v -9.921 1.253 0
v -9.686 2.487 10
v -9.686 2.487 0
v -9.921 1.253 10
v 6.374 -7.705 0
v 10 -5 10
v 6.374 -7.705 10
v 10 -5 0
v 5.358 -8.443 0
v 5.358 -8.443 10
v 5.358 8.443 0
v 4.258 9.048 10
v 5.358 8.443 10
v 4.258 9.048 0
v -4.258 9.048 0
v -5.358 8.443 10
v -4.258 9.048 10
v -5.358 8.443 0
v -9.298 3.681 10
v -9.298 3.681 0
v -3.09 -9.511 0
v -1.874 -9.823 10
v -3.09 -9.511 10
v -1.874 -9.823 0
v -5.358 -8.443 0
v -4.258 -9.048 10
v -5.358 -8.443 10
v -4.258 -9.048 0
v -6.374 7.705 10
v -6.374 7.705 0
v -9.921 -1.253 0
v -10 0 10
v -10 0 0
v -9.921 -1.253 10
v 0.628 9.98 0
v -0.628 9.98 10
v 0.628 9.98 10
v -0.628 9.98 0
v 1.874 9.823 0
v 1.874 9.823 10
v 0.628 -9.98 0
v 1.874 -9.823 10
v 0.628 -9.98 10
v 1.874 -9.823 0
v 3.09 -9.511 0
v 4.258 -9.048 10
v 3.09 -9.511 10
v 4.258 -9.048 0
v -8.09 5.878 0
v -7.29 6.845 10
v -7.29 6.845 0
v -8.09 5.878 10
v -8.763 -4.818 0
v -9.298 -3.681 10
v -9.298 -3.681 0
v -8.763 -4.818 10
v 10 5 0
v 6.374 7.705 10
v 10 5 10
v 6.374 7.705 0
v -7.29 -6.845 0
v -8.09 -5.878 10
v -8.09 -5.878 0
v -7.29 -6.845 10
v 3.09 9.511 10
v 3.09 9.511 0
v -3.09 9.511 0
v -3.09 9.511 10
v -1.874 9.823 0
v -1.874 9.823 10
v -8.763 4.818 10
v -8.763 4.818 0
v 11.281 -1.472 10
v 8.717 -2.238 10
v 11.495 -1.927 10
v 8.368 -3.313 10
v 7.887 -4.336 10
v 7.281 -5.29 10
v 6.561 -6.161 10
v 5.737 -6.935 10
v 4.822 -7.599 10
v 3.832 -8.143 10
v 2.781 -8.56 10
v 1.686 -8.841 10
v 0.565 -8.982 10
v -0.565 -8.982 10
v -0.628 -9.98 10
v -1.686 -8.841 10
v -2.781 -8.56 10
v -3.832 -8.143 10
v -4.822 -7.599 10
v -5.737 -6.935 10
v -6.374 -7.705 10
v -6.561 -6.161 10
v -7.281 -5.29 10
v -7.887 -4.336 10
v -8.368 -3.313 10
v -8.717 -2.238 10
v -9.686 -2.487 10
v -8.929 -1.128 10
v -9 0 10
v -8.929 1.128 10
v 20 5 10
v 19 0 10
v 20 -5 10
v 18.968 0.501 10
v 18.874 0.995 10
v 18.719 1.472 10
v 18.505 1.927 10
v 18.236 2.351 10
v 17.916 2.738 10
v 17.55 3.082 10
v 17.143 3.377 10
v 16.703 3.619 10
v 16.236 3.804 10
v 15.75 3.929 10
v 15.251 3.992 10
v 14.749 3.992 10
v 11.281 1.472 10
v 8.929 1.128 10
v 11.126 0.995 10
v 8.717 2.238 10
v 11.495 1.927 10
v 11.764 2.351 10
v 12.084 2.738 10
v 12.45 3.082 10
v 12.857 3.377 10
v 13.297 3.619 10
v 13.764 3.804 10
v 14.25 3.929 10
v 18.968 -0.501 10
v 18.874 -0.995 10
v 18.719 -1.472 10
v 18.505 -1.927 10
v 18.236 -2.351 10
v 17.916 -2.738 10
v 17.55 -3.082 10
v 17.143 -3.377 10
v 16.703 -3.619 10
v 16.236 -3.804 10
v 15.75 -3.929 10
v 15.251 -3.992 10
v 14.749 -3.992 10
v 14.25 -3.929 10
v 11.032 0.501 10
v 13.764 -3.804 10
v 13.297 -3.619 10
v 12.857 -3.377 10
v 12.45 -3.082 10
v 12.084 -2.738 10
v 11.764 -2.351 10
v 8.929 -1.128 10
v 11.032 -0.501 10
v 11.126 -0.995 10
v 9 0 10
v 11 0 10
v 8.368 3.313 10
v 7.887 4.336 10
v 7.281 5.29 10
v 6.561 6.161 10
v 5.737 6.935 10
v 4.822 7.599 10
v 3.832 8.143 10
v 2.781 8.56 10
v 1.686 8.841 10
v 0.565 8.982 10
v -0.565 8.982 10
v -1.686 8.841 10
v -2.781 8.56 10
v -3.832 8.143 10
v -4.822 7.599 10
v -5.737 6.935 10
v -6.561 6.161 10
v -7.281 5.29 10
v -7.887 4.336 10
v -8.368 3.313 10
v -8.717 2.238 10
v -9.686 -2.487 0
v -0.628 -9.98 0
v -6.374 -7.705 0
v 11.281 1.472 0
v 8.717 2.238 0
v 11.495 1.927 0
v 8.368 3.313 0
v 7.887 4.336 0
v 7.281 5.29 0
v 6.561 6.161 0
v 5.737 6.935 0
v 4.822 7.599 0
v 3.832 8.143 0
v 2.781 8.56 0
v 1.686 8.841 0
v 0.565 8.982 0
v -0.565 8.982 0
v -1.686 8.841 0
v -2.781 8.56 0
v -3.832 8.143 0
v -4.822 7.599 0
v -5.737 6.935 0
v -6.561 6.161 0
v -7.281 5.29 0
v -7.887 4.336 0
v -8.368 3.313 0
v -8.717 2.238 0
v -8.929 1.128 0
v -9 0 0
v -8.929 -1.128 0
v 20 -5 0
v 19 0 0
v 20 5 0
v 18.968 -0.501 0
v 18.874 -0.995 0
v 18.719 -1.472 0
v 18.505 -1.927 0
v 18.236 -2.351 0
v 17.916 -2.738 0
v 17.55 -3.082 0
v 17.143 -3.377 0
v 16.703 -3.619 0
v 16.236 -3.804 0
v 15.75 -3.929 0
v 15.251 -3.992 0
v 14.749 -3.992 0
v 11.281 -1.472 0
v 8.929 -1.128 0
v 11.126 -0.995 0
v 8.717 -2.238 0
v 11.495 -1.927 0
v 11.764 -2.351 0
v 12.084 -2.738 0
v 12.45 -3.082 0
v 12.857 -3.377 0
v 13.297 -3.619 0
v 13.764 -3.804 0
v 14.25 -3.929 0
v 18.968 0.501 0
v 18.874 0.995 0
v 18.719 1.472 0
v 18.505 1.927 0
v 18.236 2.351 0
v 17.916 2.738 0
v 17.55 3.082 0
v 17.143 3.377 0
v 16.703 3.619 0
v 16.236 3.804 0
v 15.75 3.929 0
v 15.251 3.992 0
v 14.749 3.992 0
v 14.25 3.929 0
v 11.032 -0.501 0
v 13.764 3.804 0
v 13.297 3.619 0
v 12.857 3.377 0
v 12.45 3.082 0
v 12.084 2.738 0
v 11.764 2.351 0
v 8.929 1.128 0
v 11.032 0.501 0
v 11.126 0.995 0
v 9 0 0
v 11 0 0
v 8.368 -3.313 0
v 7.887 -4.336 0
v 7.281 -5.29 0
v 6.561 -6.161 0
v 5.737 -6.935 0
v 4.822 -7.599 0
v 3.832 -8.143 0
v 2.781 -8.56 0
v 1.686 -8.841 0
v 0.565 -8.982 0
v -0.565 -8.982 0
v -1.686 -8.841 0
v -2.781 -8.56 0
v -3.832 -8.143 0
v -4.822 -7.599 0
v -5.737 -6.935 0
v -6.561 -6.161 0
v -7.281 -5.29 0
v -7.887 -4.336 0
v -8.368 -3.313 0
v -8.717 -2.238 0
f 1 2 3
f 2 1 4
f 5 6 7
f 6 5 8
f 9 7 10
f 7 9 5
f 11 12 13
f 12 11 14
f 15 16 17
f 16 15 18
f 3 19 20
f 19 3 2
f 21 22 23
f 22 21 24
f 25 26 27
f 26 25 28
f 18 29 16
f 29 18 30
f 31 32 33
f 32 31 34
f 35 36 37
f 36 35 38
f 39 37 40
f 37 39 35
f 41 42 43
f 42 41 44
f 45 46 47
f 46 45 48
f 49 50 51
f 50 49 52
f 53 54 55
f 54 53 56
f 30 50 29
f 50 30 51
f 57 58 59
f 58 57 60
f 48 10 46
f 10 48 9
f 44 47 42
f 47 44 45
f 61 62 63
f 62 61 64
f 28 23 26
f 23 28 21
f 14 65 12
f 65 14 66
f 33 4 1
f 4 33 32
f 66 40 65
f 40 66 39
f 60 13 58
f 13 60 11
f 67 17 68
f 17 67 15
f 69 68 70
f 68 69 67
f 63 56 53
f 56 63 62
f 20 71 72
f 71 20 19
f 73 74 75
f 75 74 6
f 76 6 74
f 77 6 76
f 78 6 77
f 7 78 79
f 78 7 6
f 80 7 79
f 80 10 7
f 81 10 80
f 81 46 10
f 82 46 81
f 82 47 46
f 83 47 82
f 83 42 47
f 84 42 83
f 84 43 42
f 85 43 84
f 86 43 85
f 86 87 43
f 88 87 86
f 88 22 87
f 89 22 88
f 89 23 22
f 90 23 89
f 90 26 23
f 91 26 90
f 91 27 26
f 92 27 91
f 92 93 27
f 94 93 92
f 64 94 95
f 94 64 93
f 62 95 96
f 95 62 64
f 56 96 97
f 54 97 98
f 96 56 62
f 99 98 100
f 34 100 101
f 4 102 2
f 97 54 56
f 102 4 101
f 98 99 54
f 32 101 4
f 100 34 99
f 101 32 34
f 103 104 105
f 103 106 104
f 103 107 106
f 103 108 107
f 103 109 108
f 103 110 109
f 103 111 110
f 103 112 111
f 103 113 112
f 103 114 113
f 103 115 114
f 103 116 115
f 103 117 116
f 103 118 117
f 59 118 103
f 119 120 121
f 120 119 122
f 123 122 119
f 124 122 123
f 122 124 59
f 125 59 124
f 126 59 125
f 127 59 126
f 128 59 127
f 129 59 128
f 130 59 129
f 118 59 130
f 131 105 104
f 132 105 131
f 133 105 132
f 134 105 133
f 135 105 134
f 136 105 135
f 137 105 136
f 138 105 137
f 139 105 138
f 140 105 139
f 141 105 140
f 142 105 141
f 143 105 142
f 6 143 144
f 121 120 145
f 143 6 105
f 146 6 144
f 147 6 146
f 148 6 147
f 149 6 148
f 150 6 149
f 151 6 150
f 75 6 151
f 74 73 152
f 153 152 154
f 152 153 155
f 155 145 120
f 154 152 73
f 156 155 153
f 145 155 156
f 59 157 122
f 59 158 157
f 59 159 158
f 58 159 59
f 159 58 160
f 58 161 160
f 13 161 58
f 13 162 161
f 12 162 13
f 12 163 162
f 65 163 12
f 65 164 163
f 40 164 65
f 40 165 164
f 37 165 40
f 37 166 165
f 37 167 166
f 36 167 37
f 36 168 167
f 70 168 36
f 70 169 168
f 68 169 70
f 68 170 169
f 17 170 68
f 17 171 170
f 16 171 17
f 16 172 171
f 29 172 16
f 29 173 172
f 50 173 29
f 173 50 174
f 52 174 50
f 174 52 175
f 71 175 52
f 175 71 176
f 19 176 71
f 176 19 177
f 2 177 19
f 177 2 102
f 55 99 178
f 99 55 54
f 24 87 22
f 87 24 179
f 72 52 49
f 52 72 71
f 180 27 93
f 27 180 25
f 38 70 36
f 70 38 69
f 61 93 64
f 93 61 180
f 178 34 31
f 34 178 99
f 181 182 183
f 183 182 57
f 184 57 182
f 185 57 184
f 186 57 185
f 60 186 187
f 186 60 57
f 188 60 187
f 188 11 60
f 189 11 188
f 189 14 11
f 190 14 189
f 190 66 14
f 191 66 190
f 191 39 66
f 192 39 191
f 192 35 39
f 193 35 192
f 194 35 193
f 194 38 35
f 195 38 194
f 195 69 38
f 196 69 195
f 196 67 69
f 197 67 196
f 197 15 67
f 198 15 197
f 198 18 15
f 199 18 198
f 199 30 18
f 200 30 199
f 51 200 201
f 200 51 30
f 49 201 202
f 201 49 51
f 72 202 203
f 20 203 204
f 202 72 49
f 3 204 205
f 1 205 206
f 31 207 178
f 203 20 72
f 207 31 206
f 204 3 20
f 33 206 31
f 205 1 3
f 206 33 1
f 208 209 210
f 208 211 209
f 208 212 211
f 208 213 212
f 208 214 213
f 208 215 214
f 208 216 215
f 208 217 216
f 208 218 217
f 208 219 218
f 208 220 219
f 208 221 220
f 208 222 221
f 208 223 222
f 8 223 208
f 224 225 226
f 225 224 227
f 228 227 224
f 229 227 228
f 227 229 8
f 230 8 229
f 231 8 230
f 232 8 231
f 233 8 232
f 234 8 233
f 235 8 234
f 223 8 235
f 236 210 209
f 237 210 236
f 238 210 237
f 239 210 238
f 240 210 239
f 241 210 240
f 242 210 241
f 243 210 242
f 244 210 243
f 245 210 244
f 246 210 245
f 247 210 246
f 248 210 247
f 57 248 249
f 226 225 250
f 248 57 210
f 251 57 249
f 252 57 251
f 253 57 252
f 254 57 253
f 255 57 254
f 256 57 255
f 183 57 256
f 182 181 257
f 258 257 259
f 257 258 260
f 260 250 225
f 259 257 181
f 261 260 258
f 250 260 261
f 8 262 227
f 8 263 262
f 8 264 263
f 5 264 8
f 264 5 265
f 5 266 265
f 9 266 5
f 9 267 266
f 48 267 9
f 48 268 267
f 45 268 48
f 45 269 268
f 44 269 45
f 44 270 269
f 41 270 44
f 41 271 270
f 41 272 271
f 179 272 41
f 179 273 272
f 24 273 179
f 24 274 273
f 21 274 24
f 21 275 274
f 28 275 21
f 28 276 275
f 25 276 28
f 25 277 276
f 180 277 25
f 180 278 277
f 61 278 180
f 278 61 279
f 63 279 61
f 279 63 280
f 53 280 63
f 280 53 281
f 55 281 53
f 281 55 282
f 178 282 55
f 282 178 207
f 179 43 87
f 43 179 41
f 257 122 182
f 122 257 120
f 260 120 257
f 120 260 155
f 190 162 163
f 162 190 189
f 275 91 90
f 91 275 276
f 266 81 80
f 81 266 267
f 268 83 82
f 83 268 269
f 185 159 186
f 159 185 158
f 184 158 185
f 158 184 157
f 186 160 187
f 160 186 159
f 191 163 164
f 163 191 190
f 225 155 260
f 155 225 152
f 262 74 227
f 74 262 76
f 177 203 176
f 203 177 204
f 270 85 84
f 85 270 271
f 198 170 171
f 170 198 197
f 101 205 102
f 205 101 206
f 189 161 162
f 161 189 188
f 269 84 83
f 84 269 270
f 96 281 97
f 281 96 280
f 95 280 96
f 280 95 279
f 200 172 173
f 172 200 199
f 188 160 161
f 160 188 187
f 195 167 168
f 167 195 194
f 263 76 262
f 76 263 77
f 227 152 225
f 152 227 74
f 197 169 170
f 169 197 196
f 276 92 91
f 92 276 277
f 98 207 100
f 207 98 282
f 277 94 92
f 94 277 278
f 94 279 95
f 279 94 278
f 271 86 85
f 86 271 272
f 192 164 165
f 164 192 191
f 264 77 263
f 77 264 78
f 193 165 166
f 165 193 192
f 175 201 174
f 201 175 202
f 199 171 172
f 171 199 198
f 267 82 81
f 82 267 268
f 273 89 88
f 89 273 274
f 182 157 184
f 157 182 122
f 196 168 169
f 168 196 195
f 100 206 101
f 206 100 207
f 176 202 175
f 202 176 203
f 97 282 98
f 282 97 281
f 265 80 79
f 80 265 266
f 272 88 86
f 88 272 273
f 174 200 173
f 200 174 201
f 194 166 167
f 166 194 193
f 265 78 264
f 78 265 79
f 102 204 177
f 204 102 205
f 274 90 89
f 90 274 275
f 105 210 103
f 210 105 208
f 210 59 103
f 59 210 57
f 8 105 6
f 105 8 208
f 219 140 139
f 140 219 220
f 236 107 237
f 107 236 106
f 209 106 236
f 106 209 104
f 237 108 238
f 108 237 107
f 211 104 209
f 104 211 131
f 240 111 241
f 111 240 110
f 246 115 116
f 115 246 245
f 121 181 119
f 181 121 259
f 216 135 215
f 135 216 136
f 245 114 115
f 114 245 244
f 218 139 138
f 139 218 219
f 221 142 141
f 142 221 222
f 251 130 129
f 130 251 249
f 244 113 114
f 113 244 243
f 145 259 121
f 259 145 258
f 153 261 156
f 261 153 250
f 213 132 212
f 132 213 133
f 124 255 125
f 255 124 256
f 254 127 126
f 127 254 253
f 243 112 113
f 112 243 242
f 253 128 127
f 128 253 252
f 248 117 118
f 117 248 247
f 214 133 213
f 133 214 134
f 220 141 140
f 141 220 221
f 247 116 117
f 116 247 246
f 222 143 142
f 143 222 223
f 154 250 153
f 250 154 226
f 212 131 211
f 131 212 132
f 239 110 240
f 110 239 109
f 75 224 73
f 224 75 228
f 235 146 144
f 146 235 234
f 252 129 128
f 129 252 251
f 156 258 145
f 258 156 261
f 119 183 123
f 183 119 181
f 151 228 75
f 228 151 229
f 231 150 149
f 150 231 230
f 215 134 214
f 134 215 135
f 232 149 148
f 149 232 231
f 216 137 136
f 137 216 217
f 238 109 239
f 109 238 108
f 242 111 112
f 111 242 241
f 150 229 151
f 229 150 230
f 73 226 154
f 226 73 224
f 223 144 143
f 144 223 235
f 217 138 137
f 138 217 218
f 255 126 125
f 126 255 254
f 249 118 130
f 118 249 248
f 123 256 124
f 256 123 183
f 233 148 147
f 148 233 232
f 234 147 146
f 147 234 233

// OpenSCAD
// use tiny thin cube for hull() to join / merge two shapes

$fn=50;

difference() {

union() {
    difference() {

        hull() {
            cylinder(10,10,10);
            #translate([10,0,5]) cube([0.001,10,10], center = true);
        }
        
        cylinder(10,9,9);
    }

    translate([15,0,5]) cube([10,10,10], center = true);
}

translate([15,0,0]) cylinder(10,4,4);
}
